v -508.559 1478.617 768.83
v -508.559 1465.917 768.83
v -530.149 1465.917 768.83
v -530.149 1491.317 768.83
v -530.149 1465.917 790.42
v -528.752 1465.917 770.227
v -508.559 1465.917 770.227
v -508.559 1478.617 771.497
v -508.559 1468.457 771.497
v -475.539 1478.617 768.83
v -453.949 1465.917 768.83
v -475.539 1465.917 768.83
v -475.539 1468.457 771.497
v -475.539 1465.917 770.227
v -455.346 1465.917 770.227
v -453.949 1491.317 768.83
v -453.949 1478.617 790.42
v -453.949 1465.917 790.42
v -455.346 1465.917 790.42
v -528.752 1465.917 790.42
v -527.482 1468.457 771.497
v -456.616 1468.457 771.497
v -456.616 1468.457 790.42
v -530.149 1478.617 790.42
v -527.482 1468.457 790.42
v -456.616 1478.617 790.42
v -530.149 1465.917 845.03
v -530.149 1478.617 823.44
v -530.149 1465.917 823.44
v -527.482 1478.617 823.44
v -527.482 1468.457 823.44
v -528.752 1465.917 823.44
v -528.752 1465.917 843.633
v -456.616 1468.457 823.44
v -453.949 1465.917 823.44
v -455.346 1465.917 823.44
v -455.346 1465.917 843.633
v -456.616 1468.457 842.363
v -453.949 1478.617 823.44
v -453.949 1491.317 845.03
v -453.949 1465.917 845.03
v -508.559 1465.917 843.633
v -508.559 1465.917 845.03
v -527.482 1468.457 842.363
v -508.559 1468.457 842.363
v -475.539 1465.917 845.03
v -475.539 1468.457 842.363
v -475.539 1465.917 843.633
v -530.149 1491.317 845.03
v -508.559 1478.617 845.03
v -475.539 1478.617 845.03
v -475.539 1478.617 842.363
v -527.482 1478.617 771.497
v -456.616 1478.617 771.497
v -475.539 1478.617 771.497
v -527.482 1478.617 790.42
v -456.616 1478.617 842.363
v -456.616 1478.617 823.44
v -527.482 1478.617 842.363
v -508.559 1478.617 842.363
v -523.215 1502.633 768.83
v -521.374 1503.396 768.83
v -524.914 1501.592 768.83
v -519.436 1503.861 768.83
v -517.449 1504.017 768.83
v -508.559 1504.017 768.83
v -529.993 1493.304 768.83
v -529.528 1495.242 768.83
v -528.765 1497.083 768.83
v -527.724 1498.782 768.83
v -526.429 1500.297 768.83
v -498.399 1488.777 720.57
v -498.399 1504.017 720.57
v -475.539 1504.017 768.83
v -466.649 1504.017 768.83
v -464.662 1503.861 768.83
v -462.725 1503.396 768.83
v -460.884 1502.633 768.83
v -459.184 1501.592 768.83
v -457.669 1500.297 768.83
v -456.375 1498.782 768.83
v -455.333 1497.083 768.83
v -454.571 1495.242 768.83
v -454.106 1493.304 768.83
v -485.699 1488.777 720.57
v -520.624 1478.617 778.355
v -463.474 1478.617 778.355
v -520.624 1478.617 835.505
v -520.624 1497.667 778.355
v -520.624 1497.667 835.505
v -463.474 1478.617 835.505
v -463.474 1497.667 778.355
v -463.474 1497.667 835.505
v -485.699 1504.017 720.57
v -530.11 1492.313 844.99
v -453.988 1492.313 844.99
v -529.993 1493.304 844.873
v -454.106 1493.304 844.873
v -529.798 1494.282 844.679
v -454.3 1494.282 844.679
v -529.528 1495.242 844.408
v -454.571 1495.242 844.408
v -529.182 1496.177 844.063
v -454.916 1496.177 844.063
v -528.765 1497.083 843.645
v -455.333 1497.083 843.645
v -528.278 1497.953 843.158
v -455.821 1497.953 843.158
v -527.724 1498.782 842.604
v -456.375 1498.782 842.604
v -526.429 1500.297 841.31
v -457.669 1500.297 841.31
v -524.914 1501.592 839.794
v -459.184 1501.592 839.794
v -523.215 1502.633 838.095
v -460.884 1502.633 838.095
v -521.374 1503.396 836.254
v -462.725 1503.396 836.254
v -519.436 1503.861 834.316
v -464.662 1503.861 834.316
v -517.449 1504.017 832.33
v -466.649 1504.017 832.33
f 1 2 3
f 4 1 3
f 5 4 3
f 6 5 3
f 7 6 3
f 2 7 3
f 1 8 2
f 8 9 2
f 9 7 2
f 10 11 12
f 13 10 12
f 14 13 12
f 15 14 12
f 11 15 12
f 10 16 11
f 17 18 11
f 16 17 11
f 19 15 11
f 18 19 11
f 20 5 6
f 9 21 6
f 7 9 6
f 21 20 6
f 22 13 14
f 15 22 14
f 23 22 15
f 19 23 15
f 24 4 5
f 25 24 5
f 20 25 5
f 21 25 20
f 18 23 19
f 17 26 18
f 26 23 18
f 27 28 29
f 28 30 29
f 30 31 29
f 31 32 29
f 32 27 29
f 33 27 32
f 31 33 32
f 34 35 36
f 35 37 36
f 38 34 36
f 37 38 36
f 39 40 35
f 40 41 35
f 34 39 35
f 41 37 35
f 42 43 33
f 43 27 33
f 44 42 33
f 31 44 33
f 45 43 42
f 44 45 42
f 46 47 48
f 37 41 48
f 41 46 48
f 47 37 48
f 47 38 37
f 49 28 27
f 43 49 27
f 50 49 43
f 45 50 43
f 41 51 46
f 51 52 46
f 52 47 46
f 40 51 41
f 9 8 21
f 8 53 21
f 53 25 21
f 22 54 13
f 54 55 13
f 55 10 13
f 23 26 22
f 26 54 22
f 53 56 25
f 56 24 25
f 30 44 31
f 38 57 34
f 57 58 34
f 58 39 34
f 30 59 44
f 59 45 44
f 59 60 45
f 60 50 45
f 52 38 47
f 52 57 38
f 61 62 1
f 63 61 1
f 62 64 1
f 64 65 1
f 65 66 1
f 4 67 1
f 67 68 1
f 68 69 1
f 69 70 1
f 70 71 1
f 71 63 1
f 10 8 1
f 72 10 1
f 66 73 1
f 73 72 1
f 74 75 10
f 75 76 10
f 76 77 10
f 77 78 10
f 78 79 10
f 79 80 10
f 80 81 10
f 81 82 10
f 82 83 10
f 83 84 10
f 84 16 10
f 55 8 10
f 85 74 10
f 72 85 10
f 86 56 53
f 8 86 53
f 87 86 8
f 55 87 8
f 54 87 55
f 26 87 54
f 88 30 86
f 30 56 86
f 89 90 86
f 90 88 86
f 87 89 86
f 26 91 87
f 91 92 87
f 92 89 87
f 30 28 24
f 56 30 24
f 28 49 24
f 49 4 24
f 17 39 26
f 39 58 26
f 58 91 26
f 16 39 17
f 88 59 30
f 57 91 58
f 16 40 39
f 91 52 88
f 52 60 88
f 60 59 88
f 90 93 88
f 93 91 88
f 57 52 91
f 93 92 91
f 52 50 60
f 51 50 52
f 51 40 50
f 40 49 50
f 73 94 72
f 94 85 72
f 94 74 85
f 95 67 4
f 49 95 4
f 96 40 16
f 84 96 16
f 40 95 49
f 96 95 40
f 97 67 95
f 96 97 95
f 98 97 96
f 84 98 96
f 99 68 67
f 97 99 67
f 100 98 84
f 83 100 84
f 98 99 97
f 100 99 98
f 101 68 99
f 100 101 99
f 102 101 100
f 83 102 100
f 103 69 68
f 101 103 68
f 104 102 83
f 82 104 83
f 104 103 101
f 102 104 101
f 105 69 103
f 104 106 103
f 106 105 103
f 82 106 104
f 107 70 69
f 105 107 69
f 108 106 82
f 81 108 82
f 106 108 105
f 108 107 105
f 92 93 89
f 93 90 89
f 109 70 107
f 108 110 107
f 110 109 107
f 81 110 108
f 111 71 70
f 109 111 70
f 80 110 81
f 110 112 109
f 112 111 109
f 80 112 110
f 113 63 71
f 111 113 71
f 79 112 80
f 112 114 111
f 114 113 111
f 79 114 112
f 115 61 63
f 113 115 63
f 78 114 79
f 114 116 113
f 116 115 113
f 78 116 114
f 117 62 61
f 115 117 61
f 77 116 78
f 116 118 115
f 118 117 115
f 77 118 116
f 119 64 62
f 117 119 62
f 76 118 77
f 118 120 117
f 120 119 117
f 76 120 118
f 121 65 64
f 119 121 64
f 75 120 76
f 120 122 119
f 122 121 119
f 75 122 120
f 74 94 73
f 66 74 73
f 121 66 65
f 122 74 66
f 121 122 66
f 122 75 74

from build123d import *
from OCP.BRepFilletAPI import BRepFilletAPI_MakeChamfer

# Parameters (mm, degrees)
SKETCH1_W           = 76.2
SKETCH1_H           = 76.2
BOSS_EXTRUDE1_DEPTH = 25.4
SKETCH2_W           = 57.15
SKETCH2_H           = 57.15
CUT_EXTRUDE1_DEPTH  = 19.05
BOSS_EXTRUDE2_DEPTH = 12.7
CHAMFER1_SIZE       = 2.54
CHAMFER1_SIZE2      = 1.27
FILLET1_R           = 12.7
SKETCH4_W           = 33.02
SKETCH4_H           = 25.4
BOSS_EXTRUDE3_DEPTH = 48.26
CHAMFER2_SIZE       = 48.26
CHAMFER2_SIZE_2     = 10.16


with BuildPart() as part:
    # Sketch1 → Boss-Extrude1 (new body)
    with BuildSketch(Plane(origin=(0, 1478.617106037, 0), x_dir=(1, 0, 0), z_dir=(0, 1, 0))):
        with Locations((-492.049198231, -806.92955637)):
            Rectangle(SKETCH1_W, SKETCH1_H)
    extrude(amount=BOSS_EXTRUDE1_DEPTH)

    # Sketch2 → Cut-Extrude1 (cut)
    with BuildSketch(Plane(origin=(0, 1478.617106037, 0), x_dir=(-1, 0, 0), z_dir=(0, -1, 0))):
        with Locations((492.049198231, -806.92955637)):
            Rectangle(SKETCH2_W, SKETCH2_H)
    extrude(amount=-CUT_EXTRUDE1_DEPTH, mode=Mode.SUBTRACT)

    # Sketch3 → Boss-Extrude2 (add)
    with BuildSketch(Plane(origin=(0, 1478.617106037, 0), x_dir=(-1, 0, 0), z_dir=(0, -1, 0))):
        Polygon((530.149198231, -790.41955637), (527.482198231, -790.41955637), (527.482198231, -771.49655637), (508.559198231, -771.49655637), (508.559198231, -768.82955637), (530.149198231, -768.82955637), align=None)
        Polygon((530.149198231, -823.43955637), (527.482198231, -823.43955637), (527.482198231, -842.36255637), (508.559198231, -842.36255637), (508.559198231, -845.02955637), (530.149198231, -845.02955637), align=None)
        Polygon((475.539198231, -768.82955637), (475.539198231, -771.49655637), (456.616198231, -771.49655637), (456.616198231, -790.41955637), (453.949198231, -790.41955637), (453.949198231, -768.82955637), align=None)
        Polygon((475.539198231, -845.02955637), (475.539198231, -842.36255637), (456.616198231, -842.36255637), (456.616198231, -823.43955637), (453.949198231, -823.43955637), (453.949198231, -845.02955637), align=None)
    extrude(amount=BOSS_EXTRUDE2_DEPTH)

    # Chamfer1: one chamfer whose edges measure the first distance from different faces: ONE call of the kernel's chamfer builder (chamfer() names one face for all edges)
    chamfer1_edges_1 = [part.edges().sort_by_distance(p)[0] for p in [
        (-518.020698231, 1465.917106037, 771.49655637),
    ]]
    chamfer1_side_1 = [part.faces().sort_by_distance(p)[0] for p in [
        (-518.020698231, 1472.267106037, 771.49655637),
    ]]
    chamfer1_edges_2 = [part.edges().sort_by_distance(p)[0] for p in [
        (-527.482198231, 1465.917106037, 780.95805637),
    ]]
    chamfer1_side_2 = [part.faces().sort_by_distance(p)[0] for p in [
        (-527.482198231, 1472.267106037, 780.95805637),
    ]]
    chamfer1_edges_3 = [part.edges().sort_by_distance(p)[0] for p in [
        (-527.482198231, 1465.917106037, 832.90105637),
    ]]
    chamfer1_side_3 = [part.faces().sort_by_distance(p)[0] for p in [
        (-527.482198231, 1472.267106037, 832.90105637),
    ]]
    chamfer1_edges_4 = [part.edges().sort_by_distance(p)[0] for p in [
        (-518.020698231, 1465.917106037, 842.36255637),
    ]]
    chamfer1_side_4 = [part.faces().sort_by_distance(p)[0] for p in [
        (-518.020698231, 1472.267106037, 842.36255637),
    ]]
    chamfer1_edges_5 = [part.edges().sort_by_distance(p)[0] for p in [
        (-466.077698231, 1465.917106037, 771.49655637),
    ]]
    chamfer1_side_5 = [part.faces().sort_by_distance(p)[0] for p in [
        (-466.077698231, 1472.267106037, 771.49655637),
    ]]
    chamfer1_edges_6 = [part.edges().sort_by_distance(p)[0] for p in [
        (-456.616198231, 1465.917106037, 780.95805637),
    ]]
    chamfer1_side_6 = [part.faces().sort_by_distance(p)[0] for p in [
        (-456.616198231, 1472.267106037, 780.95805637),
    ]]
    chamfer1_edges_7 = [part.edges().sort_by_distance(p)[0] for p in [
        (-466.077698231, 1465.917106037, 842.36255637),
    ]]
    chamfer1_side_7 = [part.faces().sort_by_distance(p)[0] for p in [
        (-466.077698231, 1472.267106037, 842.36255637),
    ]]
    chamfer1_edges_8 = [part.edges().sort_by_distance(p)[0] for p in [
        (-456.616198231, 1465.917106037, 832.90105637),
    ]]
    chamfer1_side_8 = [part.faces().sort_by_distance(p)[0] for p in [
        (-456.616198231, 1472.267106037, 832.90105637),
    ]]
    chamfer1 = BRepFilletAPI_MakeChamfer(part.part.solid().wrapped)
    for e in chamfer1_edges_1:
        chamfer1.Add(CHAMFER1_SIZE, CHAMFER1_SIZE2, e.wrapped, chamfer1_side_1[0].wrapped)  # the first distance lies on this face
    for e in chamfer1_edges_2:
        chamfer1.Add(CHAMFER1_SIZE, CHAMFER1_SIZE2, e.wrapped, chamfer1_side_2[0].wrapped)  # the first distance lies on this face
    for e in chamfer1_edges_3:
        chamfer1.Add(CHAMFER1_SIZE, CHAMFER1_SIZE2, e.wrapped, chamfer1_side_3[0].wrapped)  # the first distance lies on this face
    for e in chamfer1_edges_4:
        chamfer1.Add(CHAMFER1_SIZE, CHAMFER1_SIZE2, e.wrapped, chamfer1_side_4[0].wrapped)  # the first distance lies on this face
    for e in chamfer1_edges_5:
        chamfer1.Add(CHAMFER1_SIZE, CHAMFER1_SIZE2, e.wrapped, chamfer1_side_5[0].wrapped)  # the first distance lies on this face
    for e in chamfer1_edges_6:
        chamfer1.Add(CHAMFER1_SIZE, CHAMFER1_SIZE2, e.wrapped, chamfer1_side_6[0].wrapped)  # the first distance lies on this face
    for e in chamfer1_edges_7:
        chamfer1.Add(CHAMFER1_SIZE, CHAMFER1_SIZE2, e.wrapped, chamfer1_side_7[0].wrapped)  # the first distance lies on this face
    for e in chamfer1_edges_8:
        chamfer1.Add(CHAMFER1_SIZE, CHAMFER1_SIZE2, e.wrapped, chamfer1_side_8[0].wrapped)  # the first distance lies on this face
    add(Compound.cast(chamfer1.Shape()), mode=Mode.REPLACE)

    # Fillet1
    fillet1_edges = [part.edges().sort_by_distance(p)[0] for p in [
        (-530.149198231, 1504.017106037, 806.92955637),
        (-492.049198231, 1504.017106037, 845.02955637),
        (-453.949198231, 1504.017106037, 806.92955637),
    ]]
    fillet(fillet1_edges, radius=FILLET1_R)

    # Sketch4 → Boss-Extrude3 (add)
    with BuildSketch(Plane(origin=(0, 0, 768.82955637), x_dir=(-1, 0, 0), z_dir=(0, 0, -1))):
        with Locations((492.049198231, 1491.317106037)):
            Rectangle(SKETCH4_W, SKETCH4_H)
    extrude(amount=BOSS_EXTRUDE3_DEPTH)

    # Chamfer2
    # the kernel refuses this chamfer: 48.26, 10.16 mm, written as the material it takes off along each edge
    with BuildSketch(Plane(origin=(-508.559198231, 1353.240682796, 720.56955637), x_dir=(-0.007929773045437122, 0, 0.9999685588554512), z_dir=(0, 1, 0))) as chamfer2_piece_1_section:
        Polygon((CHAMFER2_SIZE * 0.999968558855, CHAMFER2_SIZE * 0.00792977304544), (-CHAMFER2_SIZE_2 * 0.00792977304544, CHAMFER2_SIZE_2 * 0.999968558855), (0, 0), align=None)
    chamfer2_piece_1 = extrude(amount=276.152846481, mode=Mode.PRIVATE)
    chamfer2_piece_1 = split(chamfer2_piece_1, bisect_by=Plane(origin=(-505.671976228, 1491.317106037, 768.82955637), z_dir=(0, 0, -1)), keep=Keep.TOP, mode=Mode.PRIVATE)
    add(chamfer2_piece_1, mode=Mode.SUBTRACT)
    with BuildSketch(Plane(origin=(-350.16277499, 1478.617106037, 720.56955637), x_dir=(0, -0.007929773045437122, 0.9999685588554512), z_dir=(-1, 0, 0))) as chamfer2_piece_2:
        Polygon((CHAMFER2_SIZE * 0.999968558855, CHAMFER2_SIZE * 0.00792977304544), (-CHAMFER2_SIZE_2 * 0.00792977304544, CHAMFER2_SIZE_2 * 0.999968558855), (0, 0), align=None)
    extrude(amount=283.772846481, mode=Mode.SUBTRACT)
    with BuildSketch(Plane(origin=(-475.539198231, 1629.393529277, 720.56955637), x_dir=(0.007929773045437122, 0, 0.9999685588554512), z_dir=(0, -1, 0))) as chamfer2_piece_3_section:
        Polygon((CHAMFER2_SIZE * 0.999968558855, CHAMFER2_SIZE * 0.00792977304544), (-CHAMFER2_SIZE_2 * 0.00792977304544, CHAMFER2_SIZE_2 * 0.999968558855), (0, 0), align=None)
    chamfer2_piece_3 = extrude(amount=276.152846481, mode=Mode.PRIVATE)
    chamfer2_piece_3 = split(chamfer2_piece_3, bisect_by=Plane(origin=(-478.426420234, 1491.317106037, 768.82955637), z_dir=(0, 0, -1)), keep=Keep.TOP, mode=Mode.PRIVATE)
    add(chamfer2_piece_3, mode=Mode.SUBTRACT)


solid = part.part
